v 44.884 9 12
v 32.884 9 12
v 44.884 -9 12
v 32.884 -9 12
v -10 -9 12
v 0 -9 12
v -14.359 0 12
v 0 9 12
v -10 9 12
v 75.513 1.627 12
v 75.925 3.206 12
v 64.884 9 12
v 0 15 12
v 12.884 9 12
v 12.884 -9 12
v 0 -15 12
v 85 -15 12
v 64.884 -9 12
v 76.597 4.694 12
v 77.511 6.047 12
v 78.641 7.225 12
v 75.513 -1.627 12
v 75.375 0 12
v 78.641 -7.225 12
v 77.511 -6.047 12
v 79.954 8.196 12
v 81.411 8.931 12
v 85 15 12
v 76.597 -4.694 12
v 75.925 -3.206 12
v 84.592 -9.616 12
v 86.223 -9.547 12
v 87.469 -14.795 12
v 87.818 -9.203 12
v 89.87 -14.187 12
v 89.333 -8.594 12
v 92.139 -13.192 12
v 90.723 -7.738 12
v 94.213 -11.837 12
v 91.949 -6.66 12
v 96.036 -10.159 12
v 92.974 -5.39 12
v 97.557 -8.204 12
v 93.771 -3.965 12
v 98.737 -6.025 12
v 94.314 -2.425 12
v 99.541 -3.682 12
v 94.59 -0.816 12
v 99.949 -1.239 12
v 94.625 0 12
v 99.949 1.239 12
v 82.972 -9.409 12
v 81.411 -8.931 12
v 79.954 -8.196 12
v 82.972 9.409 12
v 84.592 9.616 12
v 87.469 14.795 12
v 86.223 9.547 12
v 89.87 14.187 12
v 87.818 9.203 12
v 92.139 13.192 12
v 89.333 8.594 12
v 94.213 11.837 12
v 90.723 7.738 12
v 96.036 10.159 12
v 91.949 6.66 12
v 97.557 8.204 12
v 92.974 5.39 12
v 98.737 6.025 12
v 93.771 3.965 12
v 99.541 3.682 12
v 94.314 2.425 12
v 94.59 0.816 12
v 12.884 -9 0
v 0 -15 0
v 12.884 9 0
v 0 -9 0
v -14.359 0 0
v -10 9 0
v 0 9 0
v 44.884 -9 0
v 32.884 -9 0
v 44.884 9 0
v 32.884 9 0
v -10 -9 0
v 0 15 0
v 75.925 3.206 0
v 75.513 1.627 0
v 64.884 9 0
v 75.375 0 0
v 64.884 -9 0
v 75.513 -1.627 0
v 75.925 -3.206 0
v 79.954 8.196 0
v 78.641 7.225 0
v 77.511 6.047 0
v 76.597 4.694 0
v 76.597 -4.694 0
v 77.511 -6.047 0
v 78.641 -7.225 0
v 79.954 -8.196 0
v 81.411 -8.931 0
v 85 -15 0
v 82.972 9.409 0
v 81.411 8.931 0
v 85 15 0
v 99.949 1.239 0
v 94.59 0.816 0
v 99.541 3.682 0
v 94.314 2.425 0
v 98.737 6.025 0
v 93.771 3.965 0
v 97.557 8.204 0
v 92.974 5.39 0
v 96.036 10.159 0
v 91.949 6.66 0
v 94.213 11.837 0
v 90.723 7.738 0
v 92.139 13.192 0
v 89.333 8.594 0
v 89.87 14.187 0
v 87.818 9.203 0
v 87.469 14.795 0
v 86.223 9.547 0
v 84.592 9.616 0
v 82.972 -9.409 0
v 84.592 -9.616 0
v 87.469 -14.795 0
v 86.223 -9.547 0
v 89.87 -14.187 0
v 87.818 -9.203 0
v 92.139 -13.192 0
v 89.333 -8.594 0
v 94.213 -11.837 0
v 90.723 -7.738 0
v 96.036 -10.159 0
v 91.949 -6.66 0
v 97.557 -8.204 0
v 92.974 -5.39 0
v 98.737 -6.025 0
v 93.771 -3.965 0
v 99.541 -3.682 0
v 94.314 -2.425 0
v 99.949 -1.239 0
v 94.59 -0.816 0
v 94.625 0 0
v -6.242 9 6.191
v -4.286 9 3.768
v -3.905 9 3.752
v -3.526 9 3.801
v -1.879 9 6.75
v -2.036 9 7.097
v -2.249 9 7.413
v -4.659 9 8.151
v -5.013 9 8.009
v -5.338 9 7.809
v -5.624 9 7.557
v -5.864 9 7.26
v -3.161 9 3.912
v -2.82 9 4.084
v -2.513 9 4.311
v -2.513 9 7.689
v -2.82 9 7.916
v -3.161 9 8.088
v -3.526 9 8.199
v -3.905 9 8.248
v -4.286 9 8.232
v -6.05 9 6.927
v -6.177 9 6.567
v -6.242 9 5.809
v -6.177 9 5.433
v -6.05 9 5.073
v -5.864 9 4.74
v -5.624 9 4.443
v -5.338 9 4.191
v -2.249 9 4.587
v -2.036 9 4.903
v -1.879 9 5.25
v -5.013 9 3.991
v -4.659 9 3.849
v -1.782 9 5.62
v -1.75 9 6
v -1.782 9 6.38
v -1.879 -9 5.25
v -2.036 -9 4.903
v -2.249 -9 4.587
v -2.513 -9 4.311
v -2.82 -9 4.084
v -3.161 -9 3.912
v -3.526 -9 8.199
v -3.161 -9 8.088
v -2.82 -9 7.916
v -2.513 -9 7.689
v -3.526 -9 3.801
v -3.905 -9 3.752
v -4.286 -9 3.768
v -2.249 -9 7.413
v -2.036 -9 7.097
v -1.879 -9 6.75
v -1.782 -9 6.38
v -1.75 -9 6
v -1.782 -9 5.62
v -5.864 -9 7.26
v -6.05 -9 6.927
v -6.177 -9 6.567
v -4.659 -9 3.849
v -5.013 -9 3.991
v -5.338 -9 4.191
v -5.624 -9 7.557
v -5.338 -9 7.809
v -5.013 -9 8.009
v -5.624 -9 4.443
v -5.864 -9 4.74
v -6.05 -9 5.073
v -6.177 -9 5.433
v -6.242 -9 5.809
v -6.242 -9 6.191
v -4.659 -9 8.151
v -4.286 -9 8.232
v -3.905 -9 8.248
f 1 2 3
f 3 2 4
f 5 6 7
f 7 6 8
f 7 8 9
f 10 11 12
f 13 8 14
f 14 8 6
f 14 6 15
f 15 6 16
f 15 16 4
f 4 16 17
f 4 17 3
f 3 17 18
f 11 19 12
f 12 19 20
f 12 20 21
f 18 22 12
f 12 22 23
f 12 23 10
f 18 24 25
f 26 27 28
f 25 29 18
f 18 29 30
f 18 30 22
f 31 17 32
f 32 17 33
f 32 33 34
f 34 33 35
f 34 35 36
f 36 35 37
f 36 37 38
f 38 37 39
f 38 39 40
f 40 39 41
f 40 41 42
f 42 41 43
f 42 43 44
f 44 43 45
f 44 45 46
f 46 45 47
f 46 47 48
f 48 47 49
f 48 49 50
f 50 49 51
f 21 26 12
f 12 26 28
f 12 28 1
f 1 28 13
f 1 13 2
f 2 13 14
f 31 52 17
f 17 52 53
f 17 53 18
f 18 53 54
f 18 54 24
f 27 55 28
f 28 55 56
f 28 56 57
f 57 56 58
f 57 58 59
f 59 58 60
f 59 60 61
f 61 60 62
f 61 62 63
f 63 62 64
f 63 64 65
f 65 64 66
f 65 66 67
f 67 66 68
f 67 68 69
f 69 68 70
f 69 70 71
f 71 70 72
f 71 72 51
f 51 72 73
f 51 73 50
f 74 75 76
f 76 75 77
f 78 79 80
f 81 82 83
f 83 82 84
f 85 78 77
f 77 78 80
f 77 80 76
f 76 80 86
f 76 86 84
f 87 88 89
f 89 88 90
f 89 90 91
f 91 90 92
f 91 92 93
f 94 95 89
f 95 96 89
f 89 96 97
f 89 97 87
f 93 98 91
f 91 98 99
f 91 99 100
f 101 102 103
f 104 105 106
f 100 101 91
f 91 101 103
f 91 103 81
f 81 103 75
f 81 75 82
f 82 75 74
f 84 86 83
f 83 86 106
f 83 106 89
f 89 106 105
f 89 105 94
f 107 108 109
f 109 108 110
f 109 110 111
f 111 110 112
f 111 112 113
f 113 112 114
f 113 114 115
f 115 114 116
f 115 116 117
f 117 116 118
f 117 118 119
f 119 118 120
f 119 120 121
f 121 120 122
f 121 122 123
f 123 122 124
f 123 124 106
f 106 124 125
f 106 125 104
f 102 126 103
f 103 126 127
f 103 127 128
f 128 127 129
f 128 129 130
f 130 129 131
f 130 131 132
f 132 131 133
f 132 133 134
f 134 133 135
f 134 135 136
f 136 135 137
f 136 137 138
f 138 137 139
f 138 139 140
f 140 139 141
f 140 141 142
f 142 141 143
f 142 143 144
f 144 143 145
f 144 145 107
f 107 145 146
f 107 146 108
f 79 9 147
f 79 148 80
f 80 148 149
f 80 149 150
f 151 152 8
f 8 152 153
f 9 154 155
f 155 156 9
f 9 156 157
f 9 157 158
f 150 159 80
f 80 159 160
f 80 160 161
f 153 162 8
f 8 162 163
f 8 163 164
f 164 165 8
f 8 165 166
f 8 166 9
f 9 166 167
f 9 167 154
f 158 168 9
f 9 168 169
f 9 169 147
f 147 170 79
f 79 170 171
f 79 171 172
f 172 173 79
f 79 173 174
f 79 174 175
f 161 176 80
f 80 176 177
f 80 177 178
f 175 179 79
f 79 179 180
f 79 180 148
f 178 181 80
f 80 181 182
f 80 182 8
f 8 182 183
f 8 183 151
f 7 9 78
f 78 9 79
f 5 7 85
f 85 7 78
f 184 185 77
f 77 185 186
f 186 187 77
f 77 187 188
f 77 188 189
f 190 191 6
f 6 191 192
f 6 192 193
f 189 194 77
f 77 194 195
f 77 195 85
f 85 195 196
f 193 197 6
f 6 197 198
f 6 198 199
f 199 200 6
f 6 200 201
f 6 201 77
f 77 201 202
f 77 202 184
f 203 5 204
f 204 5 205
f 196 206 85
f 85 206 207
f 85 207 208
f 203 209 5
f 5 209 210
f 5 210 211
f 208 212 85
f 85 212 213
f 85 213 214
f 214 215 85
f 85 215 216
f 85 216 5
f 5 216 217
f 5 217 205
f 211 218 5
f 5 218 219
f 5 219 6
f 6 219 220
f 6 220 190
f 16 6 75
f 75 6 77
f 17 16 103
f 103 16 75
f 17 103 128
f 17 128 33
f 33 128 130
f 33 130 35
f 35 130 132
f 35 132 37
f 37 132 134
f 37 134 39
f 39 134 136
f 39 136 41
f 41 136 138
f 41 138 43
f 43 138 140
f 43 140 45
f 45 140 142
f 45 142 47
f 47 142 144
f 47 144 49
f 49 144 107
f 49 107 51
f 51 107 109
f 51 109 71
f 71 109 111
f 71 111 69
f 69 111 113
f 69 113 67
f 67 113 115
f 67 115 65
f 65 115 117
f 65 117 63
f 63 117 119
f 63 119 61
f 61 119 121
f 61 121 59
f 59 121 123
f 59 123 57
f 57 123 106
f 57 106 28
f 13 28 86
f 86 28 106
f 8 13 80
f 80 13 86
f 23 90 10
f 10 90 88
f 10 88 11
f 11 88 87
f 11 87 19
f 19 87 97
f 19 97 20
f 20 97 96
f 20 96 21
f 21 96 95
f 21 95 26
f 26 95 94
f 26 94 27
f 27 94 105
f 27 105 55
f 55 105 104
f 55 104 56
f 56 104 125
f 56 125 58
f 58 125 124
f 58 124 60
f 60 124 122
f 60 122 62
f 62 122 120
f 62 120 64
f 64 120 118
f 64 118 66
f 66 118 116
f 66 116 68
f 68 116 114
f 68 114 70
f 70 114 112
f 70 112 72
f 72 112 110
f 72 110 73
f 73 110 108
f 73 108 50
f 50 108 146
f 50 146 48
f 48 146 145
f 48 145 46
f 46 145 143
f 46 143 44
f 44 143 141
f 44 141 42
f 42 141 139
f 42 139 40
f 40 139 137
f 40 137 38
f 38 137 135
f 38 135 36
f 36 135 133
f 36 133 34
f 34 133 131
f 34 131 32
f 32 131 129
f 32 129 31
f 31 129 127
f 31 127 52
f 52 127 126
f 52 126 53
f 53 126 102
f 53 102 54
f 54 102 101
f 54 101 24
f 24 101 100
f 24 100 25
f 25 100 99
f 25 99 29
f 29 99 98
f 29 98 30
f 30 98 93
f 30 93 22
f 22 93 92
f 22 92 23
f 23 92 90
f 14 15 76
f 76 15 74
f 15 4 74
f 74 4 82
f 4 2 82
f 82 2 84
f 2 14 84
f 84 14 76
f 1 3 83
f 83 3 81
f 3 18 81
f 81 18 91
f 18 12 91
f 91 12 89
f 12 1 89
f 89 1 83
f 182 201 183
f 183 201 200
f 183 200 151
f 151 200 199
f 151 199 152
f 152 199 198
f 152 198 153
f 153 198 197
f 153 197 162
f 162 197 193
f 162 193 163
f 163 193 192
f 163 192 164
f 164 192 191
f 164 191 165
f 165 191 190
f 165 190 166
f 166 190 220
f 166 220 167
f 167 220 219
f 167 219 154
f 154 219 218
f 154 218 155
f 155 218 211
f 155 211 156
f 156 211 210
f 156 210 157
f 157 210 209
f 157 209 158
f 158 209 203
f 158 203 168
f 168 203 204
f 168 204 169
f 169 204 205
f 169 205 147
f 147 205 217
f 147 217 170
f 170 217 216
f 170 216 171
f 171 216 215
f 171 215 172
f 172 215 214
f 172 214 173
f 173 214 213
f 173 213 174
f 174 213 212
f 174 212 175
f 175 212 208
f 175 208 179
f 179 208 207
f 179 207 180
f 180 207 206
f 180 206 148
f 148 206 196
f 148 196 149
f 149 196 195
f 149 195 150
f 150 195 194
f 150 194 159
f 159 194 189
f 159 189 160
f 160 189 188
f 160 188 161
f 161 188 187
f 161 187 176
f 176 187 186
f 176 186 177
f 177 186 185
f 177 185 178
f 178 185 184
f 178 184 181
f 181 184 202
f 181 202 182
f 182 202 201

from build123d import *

# Parameters (mm, degrees)
SKETCH1_R           = 9.625
SKETCH1_W           = 20
SKETCH1_H           = 18
BOSS_EXTRUDE1_DEPTH = 12
SKETCH2_R           = 2.25
CUT_EXTRUDE1_DEPTH  = 104.537432844


with BuildPart() as part:
    # Sketch1 → Boss-Extrude1 (new body)
    with BuildSketch(Plane.XY):
        with BuildLine():
            Line((0, 15), (85, 15))
            ThreePointArc((85, 15), (100, 0), (85, -15))
            Line((85, -15), (0, -15))
            Line((0, -15), (0, -9))
            Line((0, -9), (-10, -9))
            Line((-10, -9), (-14.358898944, 0))
            Line((-14.358898944, 0), (-10, 9))
            Line((-10, 9), (0, 9))
            Line((0, 9), (0, 15))
        make_face()
        with Locations((85, 0)):
            Circle(SKETCH1_R, mode=Mode.SUBTRACT)
        with Locations((22.884427269, 0)):
            Rectangle(SKETCH1_W, SKETCH1_H, mode=Mode.SUBTRACT)
        with Locations((54.884427269, 0)):
            Rectangle(SKETCH1_W, SKETCH1_H, mode=Mode.SUBTRACT)
    extrude(amount=BOSS_EXTRUDE1_DEPTH)

    # Sketch2 → Cut-Extrude1 (cut, through all)
    with BuildSketch(Plane.XZ.offset(9)):
        with Locations((-4, 6)):
            Circle(SKETCH2_R)
    extrude(amount=-CUT_EXTRUDE1_DEPTH, mode=Mode.SUBTRACT)


solid = part.part
